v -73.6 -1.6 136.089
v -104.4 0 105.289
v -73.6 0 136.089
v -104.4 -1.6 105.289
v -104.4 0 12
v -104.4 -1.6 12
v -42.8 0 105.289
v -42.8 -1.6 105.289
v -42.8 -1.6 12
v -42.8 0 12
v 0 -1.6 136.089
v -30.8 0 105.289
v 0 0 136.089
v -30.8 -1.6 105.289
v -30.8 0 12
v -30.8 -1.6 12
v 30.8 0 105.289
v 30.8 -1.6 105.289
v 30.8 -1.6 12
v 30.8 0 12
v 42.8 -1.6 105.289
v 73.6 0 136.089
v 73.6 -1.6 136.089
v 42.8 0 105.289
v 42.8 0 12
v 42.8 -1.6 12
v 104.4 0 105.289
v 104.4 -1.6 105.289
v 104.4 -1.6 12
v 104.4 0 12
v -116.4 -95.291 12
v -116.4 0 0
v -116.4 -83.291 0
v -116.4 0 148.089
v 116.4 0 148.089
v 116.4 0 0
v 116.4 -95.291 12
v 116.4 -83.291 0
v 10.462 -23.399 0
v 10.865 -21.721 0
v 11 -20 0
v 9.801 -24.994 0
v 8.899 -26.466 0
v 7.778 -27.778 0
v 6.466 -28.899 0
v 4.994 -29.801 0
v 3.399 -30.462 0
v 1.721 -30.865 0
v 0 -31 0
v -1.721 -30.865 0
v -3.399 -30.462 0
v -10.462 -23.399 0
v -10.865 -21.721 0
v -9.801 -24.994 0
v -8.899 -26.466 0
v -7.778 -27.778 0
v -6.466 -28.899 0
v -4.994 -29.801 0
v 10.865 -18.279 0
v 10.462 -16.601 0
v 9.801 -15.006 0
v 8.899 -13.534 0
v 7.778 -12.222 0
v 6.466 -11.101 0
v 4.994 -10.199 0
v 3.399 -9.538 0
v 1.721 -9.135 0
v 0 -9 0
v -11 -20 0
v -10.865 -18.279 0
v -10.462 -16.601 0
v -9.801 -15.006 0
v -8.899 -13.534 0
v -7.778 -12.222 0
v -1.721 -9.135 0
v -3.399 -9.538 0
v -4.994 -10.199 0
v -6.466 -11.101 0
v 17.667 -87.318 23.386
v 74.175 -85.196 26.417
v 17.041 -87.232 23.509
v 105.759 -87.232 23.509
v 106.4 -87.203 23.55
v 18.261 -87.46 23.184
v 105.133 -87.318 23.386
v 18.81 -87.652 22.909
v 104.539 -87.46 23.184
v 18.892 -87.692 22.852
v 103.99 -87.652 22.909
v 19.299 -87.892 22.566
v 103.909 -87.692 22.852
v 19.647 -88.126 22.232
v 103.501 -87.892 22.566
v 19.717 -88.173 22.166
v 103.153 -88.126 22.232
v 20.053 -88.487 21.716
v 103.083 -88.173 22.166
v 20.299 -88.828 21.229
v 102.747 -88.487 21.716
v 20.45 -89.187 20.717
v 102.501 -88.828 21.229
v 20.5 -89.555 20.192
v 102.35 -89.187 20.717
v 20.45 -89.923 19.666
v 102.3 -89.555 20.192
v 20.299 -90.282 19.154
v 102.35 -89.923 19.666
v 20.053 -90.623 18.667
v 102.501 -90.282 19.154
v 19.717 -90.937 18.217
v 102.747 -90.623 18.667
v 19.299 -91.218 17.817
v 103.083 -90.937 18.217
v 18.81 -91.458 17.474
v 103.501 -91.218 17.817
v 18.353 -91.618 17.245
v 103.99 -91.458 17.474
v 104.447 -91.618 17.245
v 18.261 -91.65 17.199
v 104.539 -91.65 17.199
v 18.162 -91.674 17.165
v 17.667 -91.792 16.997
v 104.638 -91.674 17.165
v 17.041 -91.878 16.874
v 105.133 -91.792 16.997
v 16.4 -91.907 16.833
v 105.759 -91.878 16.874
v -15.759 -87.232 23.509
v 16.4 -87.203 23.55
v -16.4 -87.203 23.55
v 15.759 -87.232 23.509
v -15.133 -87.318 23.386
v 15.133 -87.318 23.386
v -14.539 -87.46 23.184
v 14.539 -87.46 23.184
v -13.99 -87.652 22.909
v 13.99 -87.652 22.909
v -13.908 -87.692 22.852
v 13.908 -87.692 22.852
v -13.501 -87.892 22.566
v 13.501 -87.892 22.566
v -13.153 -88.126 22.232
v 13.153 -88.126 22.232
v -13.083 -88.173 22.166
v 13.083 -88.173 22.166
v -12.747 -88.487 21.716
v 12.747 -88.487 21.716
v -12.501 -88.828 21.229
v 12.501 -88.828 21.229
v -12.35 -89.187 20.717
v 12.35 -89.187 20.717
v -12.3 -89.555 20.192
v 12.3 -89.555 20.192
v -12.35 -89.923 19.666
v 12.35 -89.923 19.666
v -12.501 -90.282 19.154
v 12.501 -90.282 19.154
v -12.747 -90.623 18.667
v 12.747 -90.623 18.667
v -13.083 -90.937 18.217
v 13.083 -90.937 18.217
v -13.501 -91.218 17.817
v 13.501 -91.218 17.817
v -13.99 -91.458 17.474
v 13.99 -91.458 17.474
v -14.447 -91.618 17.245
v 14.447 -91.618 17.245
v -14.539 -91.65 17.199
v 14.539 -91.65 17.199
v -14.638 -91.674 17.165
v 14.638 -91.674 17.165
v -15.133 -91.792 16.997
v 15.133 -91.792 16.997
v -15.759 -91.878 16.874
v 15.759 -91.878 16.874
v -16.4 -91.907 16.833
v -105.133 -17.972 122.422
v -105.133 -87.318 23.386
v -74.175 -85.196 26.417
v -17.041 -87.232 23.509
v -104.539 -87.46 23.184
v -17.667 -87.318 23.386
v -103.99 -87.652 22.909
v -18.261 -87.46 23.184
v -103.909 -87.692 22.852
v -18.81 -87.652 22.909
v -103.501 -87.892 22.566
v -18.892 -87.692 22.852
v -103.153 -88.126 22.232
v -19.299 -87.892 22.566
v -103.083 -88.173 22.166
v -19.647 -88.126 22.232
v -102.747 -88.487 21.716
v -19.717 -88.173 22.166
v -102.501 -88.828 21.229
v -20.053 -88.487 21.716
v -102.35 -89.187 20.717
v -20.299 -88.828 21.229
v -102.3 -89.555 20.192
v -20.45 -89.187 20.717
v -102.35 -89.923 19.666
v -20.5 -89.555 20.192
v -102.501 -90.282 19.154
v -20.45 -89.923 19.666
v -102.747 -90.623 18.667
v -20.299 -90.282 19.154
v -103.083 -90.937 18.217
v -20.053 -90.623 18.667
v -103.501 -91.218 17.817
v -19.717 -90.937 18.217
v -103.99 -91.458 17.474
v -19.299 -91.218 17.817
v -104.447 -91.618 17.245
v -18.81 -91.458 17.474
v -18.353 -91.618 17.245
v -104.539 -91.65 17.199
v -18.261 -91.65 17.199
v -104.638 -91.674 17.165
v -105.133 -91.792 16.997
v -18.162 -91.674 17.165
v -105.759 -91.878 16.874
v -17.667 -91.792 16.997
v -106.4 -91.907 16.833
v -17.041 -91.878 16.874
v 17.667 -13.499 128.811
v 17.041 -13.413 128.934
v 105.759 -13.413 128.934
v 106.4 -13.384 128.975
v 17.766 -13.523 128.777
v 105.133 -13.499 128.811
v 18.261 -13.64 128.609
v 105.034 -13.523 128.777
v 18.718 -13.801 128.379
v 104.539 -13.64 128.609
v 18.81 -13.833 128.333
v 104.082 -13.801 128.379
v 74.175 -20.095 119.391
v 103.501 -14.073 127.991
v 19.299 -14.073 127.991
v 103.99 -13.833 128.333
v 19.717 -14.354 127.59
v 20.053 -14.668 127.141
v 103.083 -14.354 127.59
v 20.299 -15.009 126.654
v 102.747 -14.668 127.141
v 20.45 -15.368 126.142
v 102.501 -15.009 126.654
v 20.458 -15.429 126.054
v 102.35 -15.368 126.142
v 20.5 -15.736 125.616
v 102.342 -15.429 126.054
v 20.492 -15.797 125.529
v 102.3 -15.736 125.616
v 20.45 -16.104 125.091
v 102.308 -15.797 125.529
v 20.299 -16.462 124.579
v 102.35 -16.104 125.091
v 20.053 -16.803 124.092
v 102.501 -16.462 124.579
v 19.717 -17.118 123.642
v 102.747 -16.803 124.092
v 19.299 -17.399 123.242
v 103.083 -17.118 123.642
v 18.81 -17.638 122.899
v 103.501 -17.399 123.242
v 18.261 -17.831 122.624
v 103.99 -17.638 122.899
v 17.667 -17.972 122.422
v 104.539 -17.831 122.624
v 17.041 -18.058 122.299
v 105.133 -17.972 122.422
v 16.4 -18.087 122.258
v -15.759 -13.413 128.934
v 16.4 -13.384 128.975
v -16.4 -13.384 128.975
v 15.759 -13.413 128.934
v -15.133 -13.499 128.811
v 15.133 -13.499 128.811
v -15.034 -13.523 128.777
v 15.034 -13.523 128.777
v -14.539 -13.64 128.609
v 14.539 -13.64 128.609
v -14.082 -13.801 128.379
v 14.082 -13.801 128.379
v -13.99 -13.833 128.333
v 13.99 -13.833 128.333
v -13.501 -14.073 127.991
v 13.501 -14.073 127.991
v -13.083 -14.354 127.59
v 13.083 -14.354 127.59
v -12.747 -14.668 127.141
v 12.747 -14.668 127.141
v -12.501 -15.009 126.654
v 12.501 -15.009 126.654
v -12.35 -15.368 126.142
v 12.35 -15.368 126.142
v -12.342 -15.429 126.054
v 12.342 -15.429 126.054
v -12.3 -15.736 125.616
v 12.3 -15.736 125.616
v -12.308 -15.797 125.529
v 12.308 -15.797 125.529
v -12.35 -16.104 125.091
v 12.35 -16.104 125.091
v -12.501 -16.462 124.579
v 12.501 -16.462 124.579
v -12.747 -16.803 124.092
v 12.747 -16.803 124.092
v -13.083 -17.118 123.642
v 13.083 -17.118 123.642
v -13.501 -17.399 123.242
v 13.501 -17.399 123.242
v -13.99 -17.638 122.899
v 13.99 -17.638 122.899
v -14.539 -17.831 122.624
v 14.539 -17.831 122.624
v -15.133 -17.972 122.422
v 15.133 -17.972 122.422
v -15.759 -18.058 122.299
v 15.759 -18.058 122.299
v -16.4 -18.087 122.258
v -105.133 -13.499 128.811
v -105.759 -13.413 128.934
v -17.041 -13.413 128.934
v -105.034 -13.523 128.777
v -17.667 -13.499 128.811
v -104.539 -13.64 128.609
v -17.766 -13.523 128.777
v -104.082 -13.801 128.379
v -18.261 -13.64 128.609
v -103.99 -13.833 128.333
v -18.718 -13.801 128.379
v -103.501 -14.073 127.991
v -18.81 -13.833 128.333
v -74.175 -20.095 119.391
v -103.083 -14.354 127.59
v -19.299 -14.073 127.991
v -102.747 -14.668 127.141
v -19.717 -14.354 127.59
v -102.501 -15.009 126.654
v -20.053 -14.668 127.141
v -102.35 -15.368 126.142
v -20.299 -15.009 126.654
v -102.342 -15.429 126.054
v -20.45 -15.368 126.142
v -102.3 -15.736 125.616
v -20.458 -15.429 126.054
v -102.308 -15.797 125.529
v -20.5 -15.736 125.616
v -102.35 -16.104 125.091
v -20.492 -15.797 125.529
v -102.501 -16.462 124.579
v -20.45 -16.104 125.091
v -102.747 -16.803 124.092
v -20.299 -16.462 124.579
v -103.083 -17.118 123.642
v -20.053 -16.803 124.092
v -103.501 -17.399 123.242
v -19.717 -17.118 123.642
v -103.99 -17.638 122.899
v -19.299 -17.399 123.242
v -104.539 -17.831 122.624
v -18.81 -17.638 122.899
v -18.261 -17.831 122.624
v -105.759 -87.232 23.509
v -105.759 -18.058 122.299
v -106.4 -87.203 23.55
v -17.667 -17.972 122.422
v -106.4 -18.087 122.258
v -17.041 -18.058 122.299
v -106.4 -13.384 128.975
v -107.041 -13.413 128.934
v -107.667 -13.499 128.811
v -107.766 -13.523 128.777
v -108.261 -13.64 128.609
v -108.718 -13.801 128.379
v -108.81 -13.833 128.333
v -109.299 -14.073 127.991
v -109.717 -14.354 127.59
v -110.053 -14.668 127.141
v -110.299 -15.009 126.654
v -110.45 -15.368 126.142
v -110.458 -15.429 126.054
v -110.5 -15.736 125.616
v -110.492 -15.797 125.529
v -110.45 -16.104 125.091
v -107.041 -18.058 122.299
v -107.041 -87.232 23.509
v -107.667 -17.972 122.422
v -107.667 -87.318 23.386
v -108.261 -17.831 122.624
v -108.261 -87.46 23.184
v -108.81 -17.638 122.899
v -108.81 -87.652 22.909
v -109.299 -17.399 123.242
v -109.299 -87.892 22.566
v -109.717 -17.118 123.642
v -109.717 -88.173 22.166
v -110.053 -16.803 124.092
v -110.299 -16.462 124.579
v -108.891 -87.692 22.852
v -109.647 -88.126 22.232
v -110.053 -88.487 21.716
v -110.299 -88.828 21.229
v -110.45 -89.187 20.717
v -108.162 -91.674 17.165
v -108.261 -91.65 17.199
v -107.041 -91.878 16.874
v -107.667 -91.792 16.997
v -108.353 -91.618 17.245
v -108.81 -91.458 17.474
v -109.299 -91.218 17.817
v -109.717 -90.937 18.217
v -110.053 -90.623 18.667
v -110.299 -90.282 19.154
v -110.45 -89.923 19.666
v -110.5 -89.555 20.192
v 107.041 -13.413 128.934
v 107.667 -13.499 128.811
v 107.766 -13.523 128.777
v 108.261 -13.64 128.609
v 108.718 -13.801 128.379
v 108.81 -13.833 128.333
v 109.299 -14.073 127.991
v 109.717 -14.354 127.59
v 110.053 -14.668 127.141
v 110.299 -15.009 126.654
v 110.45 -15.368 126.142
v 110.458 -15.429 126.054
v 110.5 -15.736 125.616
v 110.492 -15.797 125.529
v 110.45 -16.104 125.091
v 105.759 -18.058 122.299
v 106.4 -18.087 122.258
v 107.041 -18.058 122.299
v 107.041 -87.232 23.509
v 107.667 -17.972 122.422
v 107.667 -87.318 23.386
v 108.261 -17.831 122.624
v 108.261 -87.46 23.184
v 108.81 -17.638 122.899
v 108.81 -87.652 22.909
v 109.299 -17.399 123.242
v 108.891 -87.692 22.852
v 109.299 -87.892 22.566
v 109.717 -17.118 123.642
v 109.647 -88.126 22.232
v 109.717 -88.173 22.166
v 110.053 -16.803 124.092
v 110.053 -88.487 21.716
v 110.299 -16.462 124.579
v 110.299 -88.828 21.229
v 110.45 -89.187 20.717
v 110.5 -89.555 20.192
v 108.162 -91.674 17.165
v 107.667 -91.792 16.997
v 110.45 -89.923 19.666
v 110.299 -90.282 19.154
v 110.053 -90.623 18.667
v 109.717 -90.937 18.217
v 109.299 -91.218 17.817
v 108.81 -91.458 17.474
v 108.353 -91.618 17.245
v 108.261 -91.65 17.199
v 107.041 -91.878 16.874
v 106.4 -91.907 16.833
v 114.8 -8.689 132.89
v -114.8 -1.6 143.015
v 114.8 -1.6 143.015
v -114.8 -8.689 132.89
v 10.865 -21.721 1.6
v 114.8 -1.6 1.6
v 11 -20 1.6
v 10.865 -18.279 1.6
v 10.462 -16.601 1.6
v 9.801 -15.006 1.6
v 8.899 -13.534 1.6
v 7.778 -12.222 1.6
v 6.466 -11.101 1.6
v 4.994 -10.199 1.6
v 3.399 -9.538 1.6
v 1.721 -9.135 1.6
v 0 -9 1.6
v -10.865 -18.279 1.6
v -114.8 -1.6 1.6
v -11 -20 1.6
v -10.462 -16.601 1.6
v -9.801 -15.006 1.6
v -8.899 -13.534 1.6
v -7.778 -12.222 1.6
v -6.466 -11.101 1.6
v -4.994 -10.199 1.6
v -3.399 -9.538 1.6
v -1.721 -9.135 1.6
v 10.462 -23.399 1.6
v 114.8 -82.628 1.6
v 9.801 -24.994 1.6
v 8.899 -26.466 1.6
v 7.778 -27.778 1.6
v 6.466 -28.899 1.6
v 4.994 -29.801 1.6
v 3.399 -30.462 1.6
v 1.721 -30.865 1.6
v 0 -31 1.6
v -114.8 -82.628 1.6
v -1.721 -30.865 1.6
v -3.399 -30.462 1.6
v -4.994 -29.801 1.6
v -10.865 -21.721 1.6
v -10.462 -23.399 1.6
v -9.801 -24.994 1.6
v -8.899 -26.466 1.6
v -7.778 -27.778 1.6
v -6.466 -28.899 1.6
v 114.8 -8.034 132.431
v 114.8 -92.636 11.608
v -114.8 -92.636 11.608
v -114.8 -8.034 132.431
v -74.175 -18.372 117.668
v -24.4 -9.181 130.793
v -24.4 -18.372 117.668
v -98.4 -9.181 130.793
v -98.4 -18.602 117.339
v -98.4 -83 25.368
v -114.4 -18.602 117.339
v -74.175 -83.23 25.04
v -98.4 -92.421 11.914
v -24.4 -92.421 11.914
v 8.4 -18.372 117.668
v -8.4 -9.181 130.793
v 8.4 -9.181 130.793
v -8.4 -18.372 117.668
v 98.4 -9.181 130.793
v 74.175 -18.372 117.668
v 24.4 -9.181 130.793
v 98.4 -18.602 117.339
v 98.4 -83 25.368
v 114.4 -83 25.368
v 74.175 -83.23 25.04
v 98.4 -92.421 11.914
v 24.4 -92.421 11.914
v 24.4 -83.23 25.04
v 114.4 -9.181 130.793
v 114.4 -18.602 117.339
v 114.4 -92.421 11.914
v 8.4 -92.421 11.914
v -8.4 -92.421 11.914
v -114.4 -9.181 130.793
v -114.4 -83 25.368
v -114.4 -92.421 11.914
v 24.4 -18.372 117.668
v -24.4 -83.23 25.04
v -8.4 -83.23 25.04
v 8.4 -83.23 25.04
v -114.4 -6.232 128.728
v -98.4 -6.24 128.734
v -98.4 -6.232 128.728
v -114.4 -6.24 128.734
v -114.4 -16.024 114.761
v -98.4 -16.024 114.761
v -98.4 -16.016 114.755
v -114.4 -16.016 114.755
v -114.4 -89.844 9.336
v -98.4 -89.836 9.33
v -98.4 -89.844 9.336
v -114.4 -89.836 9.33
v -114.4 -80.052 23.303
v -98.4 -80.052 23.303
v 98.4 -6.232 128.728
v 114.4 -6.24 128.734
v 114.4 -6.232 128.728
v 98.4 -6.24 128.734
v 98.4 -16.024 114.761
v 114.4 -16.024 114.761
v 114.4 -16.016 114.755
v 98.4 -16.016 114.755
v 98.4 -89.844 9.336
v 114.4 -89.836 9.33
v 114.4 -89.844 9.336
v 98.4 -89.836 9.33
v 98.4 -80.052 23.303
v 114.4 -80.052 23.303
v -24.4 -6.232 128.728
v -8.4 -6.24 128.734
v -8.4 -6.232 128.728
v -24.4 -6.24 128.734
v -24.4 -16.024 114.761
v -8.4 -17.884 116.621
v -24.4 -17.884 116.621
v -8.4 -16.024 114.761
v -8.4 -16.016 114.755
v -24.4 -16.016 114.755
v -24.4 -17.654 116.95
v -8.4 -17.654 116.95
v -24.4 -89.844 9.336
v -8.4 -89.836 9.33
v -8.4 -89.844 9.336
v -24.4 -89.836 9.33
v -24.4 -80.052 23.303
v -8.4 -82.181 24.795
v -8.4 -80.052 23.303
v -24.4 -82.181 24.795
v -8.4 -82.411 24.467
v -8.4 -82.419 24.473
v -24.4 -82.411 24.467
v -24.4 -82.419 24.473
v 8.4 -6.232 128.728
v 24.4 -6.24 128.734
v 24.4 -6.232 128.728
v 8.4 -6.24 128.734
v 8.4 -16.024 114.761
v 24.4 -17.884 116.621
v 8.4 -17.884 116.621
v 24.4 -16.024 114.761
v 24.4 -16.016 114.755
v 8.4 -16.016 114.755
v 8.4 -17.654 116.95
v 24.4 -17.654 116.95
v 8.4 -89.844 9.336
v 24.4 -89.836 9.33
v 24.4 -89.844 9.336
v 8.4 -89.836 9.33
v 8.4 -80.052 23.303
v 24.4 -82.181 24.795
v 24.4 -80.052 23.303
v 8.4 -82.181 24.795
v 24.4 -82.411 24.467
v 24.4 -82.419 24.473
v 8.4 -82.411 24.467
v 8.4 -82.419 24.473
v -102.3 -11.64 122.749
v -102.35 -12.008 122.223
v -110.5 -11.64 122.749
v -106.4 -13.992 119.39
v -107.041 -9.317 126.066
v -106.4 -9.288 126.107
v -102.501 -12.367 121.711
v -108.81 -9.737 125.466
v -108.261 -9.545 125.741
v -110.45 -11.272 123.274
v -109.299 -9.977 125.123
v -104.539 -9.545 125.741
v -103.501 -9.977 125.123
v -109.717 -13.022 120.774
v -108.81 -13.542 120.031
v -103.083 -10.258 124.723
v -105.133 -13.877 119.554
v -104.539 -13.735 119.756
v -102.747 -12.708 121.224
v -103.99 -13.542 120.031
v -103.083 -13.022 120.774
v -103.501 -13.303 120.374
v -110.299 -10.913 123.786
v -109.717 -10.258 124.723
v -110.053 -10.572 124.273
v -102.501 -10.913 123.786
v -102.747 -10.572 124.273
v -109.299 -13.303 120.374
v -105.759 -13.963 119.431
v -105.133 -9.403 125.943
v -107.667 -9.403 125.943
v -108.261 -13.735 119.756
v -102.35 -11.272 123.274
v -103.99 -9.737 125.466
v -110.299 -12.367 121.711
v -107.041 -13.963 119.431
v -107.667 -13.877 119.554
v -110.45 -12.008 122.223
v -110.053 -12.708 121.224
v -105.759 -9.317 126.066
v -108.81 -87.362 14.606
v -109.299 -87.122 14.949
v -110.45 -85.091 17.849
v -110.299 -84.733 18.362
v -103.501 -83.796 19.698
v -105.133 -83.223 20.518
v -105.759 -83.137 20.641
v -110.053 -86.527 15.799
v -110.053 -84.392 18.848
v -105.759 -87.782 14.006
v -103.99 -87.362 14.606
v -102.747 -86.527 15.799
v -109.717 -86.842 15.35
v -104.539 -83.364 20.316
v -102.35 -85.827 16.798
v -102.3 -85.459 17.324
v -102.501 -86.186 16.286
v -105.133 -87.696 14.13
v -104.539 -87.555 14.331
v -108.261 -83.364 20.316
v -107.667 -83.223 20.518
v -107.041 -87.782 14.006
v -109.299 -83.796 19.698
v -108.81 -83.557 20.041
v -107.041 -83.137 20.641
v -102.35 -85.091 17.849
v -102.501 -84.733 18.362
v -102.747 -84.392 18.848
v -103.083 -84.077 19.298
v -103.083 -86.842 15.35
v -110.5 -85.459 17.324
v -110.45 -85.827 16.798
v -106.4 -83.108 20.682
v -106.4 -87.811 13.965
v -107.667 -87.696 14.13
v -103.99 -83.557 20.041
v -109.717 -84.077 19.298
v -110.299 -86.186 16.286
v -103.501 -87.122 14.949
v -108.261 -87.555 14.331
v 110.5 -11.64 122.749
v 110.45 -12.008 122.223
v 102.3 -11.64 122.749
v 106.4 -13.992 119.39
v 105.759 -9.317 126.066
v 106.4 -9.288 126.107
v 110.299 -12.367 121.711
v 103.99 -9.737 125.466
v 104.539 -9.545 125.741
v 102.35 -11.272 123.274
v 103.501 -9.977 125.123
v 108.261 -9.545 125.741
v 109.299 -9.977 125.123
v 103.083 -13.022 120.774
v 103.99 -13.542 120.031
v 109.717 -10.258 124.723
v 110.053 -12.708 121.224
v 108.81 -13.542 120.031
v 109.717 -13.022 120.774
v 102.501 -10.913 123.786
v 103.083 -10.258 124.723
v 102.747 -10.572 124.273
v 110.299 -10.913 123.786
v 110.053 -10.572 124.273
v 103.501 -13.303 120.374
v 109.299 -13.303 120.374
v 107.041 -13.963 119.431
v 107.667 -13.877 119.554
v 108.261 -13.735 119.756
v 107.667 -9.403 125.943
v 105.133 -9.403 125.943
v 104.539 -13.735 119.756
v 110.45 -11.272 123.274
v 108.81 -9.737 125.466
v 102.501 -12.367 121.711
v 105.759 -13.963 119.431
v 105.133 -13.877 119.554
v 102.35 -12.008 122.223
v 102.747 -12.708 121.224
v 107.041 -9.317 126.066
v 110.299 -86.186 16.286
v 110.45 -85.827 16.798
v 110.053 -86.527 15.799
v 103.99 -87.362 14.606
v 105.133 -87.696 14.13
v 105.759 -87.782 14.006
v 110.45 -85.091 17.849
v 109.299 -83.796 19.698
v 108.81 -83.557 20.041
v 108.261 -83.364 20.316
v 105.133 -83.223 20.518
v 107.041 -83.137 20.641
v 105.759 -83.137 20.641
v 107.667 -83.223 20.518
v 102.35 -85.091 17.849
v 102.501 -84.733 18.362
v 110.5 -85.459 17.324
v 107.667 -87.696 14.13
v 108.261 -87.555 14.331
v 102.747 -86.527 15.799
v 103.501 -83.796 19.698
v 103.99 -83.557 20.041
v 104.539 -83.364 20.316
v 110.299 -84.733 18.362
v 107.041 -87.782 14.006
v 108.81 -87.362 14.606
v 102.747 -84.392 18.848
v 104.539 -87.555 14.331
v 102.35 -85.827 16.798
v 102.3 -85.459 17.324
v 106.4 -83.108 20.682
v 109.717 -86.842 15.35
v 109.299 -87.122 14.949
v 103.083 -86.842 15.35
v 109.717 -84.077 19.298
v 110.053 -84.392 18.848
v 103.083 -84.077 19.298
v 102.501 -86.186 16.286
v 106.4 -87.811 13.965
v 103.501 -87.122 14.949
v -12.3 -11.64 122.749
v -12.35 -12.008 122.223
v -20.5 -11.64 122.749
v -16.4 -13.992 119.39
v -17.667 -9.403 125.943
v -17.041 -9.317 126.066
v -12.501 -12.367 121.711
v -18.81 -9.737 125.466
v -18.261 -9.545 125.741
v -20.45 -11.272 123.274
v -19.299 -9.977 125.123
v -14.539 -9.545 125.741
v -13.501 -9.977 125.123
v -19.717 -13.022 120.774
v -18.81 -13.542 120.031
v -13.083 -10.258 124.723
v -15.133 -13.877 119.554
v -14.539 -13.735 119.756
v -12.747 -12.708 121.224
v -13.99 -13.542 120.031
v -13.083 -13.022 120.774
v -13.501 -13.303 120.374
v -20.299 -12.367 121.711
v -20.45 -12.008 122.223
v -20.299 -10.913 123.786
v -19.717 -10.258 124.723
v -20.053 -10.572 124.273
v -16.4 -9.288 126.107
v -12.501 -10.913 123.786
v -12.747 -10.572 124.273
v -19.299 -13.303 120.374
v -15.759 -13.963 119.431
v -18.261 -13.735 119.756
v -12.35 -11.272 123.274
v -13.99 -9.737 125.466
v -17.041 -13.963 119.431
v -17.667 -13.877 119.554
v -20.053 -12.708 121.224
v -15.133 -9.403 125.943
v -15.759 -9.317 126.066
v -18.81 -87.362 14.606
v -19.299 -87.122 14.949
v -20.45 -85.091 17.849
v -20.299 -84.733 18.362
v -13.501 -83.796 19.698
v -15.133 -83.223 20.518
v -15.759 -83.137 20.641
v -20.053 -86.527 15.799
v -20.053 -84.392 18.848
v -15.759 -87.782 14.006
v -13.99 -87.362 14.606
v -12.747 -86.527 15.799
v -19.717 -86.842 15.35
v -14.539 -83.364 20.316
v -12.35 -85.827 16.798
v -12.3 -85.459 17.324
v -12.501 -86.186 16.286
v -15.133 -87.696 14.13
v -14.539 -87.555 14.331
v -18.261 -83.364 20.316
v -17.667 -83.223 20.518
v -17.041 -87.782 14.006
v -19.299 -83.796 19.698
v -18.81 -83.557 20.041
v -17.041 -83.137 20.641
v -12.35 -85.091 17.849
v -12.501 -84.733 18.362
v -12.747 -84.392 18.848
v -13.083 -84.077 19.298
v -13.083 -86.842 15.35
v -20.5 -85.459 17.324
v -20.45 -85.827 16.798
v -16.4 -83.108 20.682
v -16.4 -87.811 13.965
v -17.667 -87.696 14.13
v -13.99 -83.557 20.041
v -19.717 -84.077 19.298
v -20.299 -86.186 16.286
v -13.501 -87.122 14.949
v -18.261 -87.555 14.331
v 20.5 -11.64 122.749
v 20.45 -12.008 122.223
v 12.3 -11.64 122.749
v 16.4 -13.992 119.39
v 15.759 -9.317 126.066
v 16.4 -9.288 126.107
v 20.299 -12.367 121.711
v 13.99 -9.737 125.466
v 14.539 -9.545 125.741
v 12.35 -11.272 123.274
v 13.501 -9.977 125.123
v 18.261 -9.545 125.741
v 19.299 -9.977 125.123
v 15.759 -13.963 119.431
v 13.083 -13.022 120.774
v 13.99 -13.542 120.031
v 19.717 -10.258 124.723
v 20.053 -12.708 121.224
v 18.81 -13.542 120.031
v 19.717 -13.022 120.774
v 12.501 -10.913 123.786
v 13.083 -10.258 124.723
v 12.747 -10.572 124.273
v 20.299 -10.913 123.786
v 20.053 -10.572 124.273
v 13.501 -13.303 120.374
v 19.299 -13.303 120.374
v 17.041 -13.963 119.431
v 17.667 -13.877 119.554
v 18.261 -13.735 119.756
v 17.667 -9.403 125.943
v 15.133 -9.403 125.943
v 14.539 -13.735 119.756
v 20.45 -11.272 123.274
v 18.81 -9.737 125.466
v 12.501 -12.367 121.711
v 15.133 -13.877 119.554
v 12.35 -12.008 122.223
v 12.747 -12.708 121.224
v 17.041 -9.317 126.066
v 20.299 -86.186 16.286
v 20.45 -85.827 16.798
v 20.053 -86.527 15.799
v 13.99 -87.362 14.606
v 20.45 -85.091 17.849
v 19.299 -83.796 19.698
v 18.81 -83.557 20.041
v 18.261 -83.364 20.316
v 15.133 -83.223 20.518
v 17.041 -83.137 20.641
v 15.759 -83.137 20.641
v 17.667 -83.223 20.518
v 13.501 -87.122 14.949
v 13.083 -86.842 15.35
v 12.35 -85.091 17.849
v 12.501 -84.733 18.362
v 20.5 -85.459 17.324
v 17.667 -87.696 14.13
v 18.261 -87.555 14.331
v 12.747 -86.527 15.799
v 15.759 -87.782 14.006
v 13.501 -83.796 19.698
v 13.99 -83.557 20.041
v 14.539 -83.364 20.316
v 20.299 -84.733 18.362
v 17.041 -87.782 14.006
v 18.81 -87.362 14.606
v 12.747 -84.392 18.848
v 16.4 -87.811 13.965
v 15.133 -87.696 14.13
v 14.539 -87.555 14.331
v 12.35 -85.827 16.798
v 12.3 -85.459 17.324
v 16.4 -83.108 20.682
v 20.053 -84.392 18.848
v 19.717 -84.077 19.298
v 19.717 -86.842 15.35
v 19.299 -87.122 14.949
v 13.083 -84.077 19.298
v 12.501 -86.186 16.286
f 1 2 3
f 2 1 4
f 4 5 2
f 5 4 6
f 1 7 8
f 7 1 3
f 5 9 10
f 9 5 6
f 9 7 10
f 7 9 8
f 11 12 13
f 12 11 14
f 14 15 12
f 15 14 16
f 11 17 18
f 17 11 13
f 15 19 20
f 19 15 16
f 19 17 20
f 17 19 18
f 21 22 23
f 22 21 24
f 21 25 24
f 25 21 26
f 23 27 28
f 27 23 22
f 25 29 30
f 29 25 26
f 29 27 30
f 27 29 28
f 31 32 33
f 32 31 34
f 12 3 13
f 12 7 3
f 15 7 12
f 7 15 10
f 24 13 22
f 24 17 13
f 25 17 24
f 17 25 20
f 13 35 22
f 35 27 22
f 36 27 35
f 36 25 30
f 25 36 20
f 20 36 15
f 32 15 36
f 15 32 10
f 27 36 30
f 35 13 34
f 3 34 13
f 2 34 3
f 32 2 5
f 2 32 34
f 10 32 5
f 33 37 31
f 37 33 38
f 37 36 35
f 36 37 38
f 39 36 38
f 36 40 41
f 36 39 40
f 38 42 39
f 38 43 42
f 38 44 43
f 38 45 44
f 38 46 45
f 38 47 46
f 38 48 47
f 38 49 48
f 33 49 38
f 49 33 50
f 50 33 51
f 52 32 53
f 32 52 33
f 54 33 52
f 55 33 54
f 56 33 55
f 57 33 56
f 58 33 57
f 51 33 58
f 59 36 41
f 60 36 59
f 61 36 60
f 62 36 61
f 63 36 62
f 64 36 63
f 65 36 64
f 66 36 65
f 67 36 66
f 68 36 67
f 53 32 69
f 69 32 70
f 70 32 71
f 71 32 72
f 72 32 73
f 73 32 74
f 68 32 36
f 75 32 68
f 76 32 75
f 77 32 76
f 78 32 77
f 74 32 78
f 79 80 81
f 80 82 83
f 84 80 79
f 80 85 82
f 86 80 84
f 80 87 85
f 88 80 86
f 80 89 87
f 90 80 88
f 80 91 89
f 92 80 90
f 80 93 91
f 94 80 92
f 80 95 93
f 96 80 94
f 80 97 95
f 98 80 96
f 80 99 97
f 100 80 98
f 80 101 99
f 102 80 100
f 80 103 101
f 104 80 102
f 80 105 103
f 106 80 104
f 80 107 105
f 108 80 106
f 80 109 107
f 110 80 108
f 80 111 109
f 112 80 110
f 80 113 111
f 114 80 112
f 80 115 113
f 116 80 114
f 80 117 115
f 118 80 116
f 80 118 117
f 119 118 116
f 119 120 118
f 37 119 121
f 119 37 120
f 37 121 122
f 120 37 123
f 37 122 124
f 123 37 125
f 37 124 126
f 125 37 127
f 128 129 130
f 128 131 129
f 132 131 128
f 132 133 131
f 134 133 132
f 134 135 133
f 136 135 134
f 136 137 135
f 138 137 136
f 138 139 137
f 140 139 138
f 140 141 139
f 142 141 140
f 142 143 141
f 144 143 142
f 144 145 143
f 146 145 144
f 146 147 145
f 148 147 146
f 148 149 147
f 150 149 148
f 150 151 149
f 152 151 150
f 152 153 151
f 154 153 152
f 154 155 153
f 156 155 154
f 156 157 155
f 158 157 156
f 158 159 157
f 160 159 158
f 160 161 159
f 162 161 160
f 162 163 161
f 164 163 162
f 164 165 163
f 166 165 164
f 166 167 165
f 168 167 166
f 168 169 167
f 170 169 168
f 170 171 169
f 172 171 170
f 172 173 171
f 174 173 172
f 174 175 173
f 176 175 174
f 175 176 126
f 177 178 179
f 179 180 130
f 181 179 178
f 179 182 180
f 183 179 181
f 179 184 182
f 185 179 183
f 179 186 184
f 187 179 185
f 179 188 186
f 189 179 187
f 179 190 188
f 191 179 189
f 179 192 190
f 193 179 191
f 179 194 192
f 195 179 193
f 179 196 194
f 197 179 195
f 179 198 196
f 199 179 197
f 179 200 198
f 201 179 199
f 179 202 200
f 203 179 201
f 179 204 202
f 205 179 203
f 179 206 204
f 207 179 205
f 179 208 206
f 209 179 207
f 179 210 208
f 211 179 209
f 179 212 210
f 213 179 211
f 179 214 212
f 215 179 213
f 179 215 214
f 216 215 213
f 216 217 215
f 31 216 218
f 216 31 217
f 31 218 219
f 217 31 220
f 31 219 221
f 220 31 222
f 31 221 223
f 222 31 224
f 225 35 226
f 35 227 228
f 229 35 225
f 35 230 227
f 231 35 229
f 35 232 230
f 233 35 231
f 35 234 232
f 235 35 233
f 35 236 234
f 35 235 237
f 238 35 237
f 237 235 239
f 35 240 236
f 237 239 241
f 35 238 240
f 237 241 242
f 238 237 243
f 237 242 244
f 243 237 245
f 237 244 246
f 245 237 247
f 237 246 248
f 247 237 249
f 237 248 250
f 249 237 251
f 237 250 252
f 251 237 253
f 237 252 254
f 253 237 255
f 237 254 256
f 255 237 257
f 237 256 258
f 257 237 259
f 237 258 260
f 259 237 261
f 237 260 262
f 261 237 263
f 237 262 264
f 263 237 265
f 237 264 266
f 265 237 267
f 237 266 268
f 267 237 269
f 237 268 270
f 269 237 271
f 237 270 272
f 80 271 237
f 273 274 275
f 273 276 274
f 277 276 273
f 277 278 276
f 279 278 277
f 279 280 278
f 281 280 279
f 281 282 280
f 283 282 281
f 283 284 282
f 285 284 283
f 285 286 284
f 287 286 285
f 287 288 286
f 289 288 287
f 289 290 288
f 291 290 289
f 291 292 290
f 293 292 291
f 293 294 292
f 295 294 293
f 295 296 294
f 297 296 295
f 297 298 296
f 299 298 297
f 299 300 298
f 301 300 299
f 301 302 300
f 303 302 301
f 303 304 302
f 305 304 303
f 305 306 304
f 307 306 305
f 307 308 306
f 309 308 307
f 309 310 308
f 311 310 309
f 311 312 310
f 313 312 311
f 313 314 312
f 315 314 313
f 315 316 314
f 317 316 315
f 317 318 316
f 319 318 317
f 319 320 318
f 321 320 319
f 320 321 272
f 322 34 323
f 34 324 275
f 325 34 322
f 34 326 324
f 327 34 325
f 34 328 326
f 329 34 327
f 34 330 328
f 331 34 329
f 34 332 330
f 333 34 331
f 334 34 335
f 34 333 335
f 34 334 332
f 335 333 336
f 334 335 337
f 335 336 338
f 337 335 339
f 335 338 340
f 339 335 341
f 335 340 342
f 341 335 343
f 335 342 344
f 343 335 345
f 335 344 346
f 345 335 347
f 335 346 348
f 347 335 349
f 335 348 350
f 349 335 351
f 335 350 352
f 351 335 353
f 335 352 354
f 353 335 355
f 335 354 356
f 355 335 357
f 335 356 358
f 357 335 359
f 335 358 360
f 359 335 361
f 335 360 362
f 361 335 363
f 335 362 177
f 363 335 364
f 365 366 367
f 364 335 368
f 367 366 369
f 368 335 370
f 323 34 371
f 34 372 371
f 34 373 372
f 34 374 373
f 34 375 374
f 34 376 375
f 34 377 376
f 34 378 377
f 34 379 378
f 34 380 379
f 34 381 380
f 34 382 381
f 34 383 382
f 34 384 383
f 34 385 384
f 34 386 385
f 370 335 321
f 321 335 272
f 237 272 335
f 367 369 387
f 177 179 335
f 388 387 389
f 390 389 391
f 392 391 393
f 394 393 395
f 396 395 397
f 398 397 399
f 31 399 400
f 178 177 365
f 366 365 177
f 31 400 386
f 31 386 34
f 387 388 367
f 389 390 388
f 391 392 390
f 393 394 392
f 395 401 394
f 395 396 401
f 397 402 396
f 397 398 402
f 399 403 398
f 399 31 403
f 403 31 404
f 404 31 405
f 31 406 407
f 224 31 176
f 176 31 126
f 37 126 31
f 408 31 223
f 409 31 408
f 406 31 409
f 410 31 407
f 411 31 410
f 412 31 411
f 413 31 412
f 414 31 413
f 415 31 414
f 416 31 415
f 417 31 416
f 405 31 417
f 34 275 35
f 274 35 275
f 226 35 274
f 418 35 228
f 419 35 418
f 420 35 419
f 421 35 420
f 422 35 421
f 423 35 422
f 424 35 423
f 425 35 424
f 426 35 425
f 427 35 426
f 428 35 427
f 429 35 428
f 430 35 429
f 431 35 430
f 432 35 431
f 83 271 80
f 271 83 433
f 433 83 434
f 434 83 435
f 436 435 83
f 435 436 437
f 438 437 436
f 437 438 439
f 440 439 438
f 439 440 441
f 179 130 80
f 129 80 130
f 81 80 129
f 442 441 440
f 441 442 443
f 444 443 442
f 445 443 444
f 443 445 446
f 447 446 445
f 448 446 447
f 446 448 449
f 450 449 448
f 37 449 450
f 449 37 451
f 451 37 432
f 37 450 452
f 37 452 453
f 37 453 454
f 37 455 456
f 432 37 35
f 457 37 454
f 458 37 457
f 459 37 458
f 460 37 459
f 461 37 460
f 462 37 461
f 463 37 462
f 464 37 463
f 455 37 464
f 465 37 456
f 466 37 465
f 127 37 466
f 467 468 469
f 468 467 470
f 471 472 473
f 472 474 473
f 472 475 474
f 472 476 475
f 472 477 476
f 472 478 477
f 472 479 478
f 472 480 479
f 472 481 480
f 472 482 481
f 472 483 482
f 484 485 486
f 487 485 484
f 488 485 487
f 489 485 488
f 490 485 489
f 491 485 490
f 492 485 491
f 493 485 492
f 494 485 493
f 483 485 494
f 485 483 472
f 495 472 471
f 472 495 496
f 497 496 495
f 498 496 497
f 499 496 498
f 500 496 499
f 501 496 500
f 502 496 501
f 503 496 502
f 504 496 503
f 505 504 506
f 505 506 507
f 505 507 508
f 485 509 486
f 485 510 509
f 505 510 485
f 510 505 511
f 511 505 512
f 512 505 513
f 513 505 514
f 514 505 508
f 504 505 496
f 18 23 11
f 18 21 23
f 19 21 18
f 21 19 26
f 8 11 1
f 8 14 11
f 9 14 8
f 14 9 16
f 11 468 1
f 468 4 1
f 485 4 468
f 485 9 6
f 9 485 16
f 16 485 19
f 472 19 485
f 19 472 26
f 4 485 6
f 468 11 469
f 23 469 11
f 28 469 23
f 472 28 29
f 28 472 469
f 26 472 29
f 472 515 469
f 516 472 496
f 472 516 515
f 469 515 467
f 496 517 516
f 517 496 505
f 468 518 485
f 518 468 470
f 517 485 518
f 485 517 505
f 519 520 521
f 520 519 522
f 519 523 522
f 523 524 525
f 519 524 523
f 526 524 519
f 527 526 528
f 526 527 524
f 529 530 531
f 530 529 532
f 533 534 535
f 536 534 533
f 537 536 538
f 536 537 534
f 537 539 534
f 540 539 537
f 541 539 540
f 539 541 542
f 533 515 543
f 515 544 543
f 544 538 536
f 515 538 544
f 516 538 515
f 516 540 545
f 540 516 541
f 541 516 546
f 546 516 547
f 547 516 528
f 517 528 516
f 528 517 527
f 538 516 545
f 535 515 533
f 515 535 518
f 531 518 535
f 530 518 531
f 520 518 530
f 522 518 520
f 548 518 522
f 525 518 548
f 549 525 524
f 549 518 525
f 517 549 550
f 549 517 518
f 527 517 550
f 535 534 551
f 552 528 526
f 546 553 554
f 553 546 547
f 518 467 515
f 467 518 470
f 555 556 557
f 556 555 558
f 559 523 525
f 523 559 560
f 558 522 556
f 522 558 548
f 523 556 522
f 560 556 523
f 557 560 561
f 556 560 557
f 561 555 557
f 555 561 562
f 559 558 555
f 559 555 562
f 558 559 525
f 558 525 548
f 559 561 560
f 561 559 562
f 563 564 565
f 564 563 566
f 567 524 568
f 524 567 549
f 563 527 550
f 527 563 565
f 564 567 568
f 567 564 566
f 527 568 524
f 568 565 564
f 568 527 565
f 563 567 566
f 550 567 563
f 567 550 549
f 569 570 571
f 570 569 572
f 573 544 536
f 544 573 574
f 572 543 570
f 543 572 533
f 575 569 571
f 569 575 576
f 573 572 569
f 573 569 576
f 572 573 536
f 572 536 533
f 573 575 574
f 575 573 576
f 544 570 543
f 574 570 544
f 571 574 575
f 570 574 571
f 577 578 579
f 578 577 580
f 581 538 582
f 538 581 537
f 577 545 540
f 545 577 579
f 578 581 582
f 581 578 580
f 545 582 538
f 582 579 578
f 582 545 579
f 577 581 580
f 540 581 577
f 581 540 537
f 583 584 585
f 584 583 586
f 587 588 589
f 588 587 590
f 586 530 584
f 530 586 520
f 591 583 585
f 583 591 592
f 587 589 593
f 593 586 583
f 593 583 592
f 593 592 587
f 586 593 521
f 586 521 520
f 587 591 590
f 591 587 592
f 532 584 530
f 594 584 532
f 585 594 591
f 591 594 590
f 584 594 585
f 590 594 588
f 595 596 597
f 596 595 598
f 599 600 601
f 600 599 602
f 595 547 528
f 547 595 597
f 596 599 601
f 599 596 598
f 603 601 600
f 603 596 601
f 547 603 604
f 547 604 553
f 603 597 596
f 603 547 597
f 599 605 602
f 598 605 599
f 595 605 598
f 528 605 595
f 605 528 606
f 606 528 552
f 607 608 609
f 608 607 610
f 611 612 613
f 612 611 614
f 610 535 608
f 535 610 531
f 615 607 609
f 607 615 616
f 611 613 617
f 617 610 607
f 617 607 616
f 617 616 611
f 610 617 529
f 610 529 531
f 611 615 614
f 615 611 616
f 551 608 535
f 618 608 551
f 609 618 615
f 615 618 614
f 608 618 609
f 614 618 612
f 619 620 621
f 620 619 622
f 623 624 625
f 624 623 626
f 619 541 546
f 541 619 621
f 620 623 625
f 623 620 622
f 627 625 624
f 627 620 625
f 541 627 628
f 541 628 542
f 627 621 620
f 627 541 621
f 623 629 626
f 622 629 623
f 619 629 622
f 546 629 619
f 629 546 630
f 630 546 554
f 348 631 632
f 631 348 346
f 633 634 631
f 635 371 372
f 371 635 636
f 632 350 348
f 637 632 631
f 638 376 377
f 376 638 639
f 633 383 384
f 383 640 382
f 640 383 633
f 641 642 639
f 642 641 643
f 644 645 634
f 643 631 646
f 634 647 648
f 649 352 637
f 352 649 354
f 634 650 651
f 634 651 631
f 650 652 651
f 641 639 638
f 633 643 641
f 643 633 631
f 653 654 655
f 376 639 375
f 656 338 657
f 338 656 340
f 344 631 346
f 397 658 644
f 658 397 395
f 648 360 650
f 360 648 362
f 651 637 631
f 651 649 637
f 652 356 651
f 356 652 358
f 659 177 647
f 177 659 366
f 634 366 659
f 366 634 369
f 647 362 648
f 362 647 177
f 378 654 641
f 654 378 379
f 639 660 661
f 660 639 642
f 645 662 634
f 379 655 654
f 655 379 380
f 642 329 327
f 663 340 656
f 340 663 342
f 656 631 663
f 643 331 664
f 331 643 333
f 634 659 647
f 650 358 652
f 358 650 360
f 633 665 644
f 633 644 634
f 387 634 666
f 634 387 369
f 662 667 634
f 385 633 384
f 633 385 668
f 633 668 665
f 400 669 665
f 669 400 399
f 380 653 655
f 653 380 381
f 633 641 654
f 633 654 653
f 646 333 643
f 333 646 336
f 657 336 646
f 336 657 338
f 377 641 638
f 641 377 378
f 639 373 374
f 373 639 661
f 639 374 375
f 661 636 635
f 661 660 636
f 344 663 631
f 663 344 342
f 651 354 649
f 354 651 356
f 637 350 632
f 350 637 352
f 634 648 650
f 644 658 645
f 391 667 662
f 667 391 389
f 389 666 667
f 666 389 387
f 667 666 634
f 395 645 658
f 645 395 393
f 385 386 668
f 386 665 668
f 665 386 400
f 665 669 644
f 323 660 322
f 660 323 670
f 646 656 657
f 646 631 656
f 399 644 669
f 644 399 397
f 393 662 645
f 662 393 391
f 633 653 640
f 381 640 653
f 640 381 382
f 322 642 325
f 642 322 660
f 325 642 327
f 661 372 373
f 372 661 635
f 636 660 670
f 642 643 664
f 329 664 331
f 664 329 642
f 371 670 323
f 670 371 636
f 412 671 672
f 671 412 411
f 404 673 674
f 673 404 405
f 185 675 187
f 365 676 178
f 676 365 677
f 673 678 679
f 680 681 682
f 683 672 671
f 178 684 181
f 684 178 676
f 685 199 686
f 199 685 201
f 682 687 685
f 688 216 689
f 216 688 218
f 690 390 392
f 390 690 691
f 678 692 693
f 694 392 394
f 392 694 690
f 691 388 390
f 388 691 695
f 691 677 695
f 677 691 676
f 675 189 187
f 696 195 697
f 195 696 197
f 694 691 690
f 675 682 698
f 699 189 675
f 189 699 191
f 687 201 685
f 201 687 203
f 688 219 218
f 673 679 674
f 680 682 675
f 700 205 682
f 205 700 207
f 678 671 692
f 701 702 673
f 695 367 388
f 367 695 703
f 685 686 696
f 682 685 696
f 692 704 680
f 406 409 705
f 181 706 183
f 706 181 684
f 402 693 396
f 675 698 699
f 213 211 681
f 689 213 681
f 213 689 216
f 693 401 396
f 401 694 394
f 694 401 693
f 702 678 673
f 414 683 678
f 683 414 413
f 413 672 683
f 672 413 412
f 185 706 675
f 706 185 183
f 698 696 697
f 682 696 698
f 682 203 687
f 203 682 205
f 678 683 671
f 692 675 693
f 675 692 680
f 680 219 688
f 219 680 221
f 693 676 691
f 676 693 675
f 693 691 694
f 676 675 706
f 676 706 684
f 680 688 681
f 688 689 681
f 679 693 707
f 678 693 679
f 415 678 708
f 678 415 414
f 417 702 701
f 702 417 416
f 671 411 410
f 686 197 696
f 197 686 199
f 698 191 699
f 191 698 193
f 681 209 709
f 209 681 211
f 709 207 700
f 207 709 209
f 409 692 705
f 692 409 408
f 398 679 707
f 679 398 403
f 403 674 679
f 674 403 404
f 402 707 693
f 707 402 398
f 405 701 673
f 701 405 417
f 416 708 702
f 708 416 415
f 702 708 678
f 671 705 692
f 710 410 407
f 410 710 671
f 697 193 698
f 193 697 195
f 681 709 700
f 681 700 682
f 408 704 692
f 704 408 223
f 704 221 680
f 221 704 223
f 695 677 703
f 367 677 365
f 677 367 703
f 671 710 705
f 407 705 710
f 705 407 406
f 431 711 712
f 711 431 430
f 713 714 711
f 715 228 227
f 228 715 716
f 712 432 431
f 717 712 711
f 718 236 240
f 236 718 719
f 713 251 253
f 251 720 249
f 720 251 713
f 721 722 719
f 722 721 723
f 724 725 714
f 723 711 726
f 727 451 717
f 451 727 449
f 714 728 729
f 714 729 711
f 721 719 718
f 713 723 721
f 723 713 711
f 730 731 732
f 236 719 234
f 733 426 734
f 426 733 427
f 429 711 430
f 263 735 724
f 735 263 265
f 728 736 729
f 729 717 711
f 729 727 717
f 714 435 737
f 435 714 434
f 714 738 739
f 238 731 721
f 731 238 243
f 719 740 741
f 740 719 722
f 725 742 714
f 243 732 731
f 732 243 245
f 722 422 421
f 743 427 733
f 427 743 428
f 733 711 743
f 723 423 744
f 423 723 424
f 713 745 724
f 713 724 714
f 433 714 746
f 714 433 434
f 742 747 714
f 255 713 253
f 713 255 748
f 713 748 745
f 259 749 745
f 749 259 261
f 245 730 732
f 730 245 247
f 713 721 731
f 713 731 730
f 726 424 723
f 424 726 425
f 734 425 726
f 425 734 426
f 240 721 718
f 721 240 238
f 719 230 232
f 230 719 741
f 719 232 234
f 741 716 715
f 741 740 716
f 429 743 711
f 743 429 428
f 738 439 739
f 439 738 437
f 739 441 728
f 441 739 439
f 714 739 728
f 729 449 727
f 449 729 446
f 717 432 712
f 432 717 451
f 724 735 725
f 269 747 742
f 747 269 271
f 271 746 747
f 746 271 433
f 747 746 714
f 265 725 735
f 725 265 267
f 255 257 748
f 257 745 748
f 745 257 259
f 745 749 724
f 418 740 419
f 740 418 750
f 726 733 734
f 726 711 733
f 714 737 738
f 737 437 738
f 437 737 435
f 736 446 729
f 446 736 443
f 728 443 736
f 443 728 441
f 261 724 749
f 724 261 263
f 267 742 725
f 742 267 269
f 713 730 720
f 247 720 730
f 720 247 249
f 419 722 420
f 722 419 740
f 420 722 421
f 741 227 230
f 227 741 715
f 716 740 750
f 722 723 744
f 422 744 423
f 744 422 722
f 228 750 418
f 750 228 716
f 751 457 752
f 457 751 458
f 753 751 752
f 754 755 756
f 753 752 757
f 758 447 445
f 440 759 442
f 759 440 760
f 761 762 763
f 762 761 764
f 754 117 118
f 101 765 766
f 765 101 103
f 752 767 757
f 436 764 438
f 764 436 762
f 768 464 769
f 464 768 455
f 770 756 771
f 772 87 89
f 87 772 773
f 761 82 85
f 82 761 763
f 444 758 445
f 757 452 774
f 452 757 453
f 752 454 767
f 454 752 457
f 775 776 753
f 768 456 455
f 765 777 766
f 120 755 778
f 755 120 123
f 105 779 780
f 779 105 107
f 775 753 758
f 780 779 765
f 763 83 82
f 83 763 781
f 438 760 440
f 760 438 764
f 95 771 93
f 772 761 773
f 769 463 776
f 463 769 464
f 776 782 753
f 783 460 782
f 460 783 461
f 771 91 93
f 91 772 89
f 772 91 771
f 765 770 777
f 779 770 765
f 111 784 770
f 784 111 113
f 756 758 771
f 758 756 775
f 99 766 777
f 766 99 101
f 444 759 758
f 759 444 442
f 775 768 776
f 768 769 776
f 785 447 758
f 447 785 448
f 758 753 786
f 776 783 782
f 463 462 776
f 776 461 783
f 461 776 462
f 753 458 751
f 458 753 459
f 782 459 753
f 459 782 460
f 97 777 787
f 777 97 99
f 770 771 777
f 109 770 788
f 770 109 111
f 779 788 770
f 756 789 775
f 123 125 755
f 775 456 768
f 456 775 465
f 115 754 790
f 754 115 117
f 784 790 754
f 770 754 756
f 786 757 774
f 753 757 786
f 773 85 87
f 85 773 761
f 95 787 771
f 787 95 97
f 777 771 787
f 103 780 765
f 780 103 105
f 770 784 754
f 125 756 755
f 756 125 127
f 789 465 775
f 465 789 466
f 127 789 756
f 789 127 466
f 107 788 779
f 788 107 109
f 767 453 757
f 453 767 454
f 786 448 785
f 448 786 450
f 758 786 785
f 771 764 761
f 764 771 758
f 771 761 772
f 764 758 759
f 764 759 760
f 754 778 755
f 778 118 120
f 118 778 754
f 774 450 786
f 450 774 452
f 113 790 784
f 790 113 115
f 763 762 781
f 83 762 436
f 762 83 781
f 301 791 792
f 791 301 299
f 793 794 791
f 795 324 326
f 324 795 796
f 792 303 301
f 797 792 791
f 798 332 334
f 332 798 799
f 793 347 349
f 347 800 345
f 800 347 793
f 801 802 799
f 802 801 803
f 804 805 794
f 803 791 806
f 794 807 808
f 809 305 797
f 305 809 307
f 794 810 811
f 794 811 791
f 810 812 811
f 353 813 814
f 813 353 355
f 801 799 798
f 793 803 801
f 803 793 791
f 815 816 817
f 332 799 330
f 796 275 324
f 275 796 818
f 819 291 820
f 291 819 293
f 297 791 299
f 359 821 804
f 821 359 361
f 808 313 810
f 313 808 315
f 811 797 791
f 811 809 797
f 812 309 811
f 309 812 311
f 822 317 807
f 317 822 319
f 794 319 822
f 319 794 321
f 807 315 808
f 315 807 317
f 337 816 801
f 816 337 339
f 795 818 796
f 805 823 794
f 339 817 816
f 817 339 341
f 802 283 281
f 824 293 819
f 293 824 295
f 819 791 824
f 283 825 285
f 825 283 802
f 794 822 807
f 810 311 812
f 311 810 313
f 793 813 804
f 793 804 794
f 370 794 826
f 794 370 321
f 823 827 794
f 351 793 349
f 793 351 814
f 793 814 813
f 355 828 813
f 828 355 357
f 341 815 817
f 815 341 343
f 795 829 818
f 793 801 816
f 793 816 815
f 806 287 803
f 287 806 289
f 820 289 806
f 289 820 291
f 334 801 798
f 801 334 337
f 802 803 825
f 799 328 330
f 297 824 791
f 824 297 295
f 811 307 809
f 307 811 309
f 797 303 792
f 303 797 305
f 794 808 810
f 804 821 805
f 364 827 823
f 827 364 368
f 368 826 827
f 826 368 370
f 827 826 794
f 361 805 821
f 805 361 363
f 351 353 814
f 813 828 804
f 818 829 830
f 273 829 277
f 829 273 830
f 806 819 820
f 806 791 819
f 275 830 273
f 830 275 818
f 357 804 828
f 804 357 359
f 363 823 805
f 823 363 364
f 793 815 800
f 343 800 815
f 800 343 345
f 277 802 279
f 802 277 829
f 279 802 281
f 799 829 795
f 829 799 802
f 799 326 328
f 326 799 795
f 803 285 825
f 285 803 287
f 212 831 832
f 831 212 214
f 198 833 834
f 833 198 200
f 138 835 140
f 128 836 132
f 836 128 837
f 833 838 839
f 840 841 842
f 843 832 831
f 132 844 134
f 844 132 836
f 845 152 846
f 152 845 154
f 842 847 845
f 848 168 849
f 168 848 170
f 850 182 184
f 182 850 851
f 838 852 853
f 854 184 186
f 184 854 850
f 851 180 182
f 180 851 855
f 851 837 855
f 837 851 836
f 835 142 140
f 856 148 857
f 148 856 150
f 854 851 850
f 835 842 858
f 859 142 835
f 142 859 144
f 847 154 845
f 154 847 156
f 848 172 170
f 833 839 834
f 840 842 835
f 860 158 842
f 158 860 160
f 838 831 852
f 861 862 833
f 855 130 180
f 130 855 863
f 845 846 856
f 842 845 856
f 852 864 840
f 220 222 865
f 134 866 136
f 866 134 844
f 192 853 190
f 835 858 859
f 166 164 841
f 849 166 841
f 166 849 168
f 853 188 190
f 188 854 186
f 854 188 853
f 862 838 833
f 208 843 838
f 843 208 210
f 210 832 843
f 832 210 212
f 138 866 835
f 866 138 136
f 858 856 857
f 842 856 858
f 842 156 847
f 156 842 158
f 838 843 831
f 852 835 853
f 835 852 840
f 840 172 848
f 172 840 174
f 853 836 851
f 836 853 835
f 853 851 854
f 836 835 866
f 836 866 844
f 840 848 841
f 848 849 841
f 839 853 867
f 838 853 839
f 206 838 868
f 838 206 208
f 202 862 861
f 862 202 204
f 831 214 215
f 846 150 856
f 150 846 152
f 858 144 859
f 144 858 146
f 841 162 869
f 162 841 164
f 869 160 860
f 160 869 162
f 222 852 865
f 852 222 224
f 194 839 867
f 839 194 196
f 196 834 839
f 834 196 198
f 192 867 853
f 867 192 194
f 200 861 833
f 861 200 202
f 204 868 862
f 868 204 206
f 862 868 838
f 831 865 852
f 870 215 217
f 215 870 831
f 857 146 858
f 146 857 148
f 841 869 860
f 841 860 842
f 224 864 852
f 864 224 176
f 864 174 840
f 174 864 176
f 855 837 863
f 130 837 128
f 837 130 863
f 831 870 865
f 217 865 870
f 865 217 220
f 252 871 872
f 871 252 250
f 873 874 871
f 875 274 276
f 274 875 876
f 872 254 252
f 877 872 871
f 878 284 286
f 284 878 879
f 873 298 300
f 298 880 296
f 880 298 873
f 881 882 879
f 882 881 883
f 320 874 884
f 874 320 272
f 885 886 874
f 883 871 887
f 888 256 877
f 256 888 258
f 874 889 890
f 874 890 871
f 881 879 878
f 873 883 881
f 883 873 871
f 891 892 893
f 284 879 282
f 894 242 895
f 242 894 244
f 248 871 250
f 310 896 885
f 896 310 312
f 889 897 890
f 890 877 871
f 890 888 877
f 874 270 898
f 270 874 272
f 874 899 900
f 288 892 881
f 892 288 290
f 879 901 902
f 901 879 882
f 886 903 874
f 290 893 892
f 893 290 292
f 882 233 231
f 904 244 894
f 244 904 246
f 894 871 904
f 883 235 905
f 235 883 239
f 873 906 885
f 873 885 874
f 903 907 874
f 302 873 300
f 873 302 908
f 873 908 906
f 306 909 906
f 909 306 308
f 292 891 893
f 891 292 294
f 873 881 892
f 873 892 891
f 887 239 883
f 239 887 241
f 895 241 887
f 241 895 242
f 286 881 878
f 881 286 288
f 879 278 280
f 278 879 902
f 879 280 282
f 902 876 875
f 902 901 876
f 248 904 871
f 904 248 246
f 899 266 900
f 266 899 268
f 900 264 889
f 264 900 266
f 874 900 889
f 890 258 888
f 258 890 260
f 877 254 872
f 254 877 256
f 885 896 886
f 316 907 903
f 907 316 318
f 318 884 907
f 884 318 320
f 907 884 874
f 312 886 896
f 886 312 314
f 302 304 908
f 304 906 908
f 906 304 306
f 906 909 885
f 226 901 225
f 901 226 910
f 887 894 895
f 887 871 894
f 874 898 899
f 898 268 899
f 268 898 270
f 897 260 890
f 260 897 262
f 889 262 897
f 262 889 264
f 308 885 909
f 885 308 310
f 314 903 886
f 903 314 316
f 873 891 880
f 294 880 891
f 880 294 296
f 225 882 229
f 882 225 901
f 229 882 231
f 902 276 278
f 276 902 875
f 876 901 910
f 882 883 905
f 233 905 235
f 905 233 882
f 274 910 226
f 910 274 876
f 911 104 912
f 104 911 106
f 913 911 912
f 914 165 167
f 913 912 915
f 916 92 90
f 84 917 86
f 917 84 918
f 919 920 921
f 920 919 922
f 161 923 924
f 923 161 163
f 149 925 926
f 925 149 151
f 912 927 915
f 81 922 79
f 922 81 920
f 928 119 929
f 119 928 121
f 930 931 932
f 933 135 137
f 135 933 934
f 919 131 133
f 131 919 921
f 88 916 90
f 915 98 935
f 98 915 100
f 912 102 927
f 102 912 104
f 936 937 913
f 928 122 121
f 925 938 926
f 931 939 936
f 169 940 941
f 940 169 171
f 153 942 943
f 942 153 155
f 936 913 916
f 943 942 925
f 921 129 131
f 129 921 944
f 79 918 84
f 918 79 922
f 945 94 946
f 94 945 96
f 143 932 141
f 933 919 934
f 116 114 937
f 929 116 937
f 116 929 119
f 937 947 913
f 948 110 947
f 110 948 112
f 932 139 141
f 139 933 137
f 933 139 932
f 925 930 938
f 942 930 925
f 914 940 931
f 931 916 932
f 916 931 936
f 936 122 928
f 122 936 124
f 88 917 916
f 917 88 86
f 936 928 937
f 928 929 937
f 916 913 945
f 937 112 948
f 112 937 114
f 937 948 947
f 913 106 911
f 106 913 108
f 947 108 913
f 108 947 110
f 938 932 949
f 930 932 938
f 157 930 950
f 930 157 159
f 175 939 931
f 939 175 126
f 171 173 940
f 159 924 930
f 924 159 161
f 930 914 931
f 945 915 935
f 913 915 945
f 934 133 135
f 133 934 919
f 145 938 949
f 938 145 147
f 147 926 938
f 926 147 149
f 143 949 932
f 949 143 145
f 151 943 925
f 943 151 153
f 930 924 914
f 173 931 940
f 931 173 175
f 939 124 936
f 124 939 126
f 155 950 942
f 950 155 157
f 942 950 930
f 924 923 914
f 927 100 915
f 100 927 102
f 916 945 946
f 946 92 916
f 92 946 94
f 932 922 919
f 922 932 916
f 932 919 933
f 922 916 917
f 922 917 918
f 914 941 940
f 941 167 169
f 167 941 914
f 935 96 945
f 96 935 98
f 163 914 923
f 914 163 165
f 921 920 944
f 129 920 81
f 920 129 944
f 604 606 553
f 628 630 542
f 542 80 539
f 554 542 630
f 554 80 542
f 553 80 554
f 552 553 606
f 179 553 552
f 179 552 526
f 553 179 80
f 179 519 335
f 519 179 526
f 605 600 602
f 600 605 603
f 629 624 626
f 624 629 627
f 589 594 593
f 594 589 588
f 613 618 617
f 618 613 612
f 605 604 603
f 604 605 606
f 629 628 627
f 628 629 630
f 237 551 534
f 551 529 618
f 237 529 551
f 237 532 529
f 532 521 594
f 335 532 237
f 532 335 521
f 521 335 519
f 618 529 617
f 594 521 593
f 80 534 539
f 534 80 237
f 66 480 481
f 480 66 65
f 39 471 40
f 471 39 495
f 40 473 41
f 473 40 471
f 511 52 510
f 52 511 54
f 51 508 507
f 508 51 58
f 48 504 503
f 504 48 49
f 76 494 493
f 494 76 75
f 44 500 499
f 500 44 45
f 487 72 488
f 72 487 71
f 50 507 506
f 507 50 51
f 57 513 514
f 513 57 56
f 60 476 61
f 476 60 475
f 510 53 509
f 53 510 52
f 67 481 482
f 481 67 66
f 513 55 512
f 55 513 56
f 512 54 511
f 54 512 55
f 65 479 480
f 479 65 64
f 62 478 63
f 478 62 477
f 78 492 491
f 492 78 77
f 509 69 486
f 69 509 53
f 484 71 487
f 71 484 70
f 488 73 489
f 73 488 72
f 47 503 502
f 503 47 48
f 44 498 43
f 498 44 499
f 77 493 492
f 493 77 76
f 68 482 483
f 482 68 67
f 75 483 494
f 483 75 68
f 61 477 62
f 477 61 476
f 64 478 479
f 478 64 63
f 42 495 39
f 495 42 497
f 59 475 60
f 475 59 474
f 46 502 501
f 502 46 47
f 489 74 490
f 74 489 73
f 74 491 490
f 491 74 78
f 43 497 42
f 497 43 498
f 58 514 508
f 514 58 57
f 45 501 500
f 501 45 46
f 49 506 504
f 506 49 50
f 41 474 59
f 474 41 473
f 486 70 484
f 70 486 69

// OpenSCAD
// file: suporte_tela10_fino.scad
// =====================================================================
//  Suporte FECHADO FINO (impressão rápida) para a tela Guition
//  JC8012P4A1C 10,1". Mesmo encaixe do suporte_tela10.scad, mas:
//    - paredes de 1,6 mm (4 linhas de bico 0,4);
//    - sem logo;
//    - sem a borda grossa: só uma pastilha em volta de cada encaixe;
//    - fundo vazado (só uma moldura apoiando na mesa).
//  A tela apoia na face e as colunas de latão entram nos encaixes:
//  fica presa pelo peso, sem parafuso.
//  Eixos: X = largura, Y = profundidade (+Y para a frente), Z para cima.
// =====================================================================

/* [Tela (desenho Guition)] */
tela_l      = 242.8;
tela_a      = 158.7;
furo_borda  = 15;
furo_meio   = 16.4;
caixa_l     = 138.35;
caixa_a     = 93.5;

/* [Suporte] */
angulo      = 50;       // inclinação da tela em relação à mesa (mínimo 45 para imprimir sem suporte)
recuo_face  = 5;
parede      = 0.9;      // laterais, traseira e fundo (2 linhas de bico 0,4)
esp_face    = 1.8;      // face onde a tela apoia (mais grossa)
altura_frente = 10;
fundo_atras = 12;
moldura_fundo = 12;     // largura da moldura do fundo (o meio é vazado)
encaixe_d   = 8.2;
encaixe_prof = 5;
pastilha    = 16;       // pastilha em volta de cada encaixe
margem_l    = 5;
margem_a    = 10;
encaixes_dos_dois_lados = true;
furo_tras_d = 22;
furo_tras_z = 20;
imprimir_de_costas = false;   // true: peça girada com a traseira na mesa (para ângulos baixos)
janelas_fundo = 0;            // >0: fundo com N janelas de topo em Λ (em vez de um vão só)

$fn = 40;
e = 0.01;

W  = tela_l - 2*recuo_face;
L  = tela_a - 2*recuo_face;
ca = cos(angulo); sa = sin(angulo);
v2s = function(v) v + L/2;
z_topo = altura_frente + L*sa;
y_topo = -L*ca;
y_tras = y_topo - fundo_atras;
z_tras = z_topo - fundo_atras;
bico_frente = altura_frente * ca / sa;
abre_u = caixa_l/2 + margem_l;
abre_v = caixa_a/2 + margem_a;
k45 = max(0, tan(angulo - 45));      // recuo por mm de profundidade p/ ficar a 45° (impressão em pé)
k45c = imprimir_de_costas ? max(0, tan(45 - angulo)) : 0;   // idem, impressão de costas

fu = tela_l/2 - furo_borda;
fv = tela_a/2 - furo_borda;
encaixes = concat(
    [for (su = [-1, 1], sv = [-1, 1]) [su*fu, sv*fv]],
    [for (sv = [-1, 1]) [-furo_meio, sv*fv]],
    encaixes_dos_dois_lados ? [for (sv = [-1, 1]) [furo_meio, sv*fv]] : []
);

echo(str("Suporte fino: ", W, " x ", round(bico_frente - y_tras), " x ", round(z_topo), " mm"));

module na_face() {
    multmatrix([[1, 0,   0,  0],
                [0, -ca, sa, 0],
                [0, sa,  ca, altura_frente],
                [0, 0,   0,  1]]) children();
}

module perfil() {
    polygon([[bico_frente, 0], [0, altura_frente], [y_topo, z_topo],
             [y_tras, z_tras], [y_tras, 0]]);
}

module casca() {
    difference() {
        translate([-W/2, 0, 0]) rotate([90, 0, 90]) linear_extrude(W) perfil();
        translate([-W/2 + parede, 0, 0]) rotate([90, 0, 90]) linear_extrude(W - 2*parede)
            offset(delta = -parede) perfil();
        // fundo vazado: fica só a moldura (ou N janelas com topo em Λ a 45°)
        if (janelas_fundo == 0)
            translate([-W/2 + moldura_fundo, y_tras + moldura_fundo, -1])
                cube([W - 2*moldura_fundo, bico_frente - y_tras - 2*moldura_fundo, parede + 2]);
        else {
            jl = (W - (janelas_fundo + 1) * moldura_fundo) / janelas_fundo;
            y0 = y_tras + moldura_fundo;  y1 = bico_frente - moldura_fundo;
            for (i = [0 : janelas_fundo - 1])
                translate([-W/2 + moldura_fundo + i * (jl + moldura_fundo), 0, -1])
                    linear_extrude(parede + 2) polygon([[0, y0], [jl, y0], [jl, y1 - jl/2], [jl/2, y1], [0, y1 - jl/2]]);
        }
    }
}

// pastilha atrás da face, com a borda de baixo a 45° (imprime sem suporte)
module pastilha_em(u, v) {
    s0 = v2s(v) - pastilha/2;  s1 = v2s(v) + pastilha/2;
    p = encaixe_prof + 1;
    intersection() {
        hull() {
            na_face() translate([u - pastilha/2, s0, -e]) cube([pastilha, s1 - s0, e]);
            na_face() translate([u - pastilha/2, s0 - p*k45, -p]) cube([pastilha, s1 - s0 + p*k45 + p*k45c, e]);
        }
        translate([-W/2, 0, 0]) rotate([90, 0, 90]) linear_extrude(W) perfil();
    }
}

module suporte() {
    difference() {
        union() {
            casca();
            // face mais grossa que as outras paredes
            intersection() {
                translate([-W/2, 0, 0]) rotate([90, 0, 90]) linear_extrude(W) perfil();
                na_face() translate([-W/2, 0, -esp_face]) cube([W, L, esp_face]);
            }
            for (f = encaixes) pastilha_em(f[0], f[1]);
        }
        // abertura da caixa: borda de cima a 45°
        hull() {
            na_face() translate([-abre_u, v2s(-abre_v), 0]) cube([2*abre_u, 2*abre_v, 1]);
            na_face() translate([-abre_u, v2s(-abre_v) + (esp_face + 1) * k45c, -esp_face - 1])
                cube([2*abre_u, 2*abre_v - (esp_face + 1) * (k45 + k45c), e]);
        }
        // encaixes das colunas de latão
        for (f = encaixes) na_face() translate([f[0], v2s(f[1]), -encaixe_prof]) cylinder(d = encaixe_d, h = encaixe_prof + 1);
        // furo do cabo atrás
        translate([0, y_tras + parede/2, furo_tras_z]) rotate([90, 0, 0]) cylinder(d = furo_tras_d, h = parede + 2, center = true);
    }
}

if (imprimir_de_costas)
    rotate([90, 0, 0]) translate([0, -y_tras, 0]) mirror([0, 0, 1]) mirror([0, 0, 1]) suporte();
else
    suporte();
// main file
// =====================================================================
//  Suporte fechado da tela Guition 10,1" — versão MAIS DEITADA e MAIS GROSSA.
//  É o suporte_tela10_fino.scad com outros valores:
//    - tela a 35° da mesa (55° para trás da vertical);
//    - paredes de 1,6 mm e face de 2,4 mm (fina era 0,9 / 1,8);
//    - o STL sai GIRADO (imprimir_de_costas = true), com a traseira na mesa da impressora: assim a face
//      fica a 35° da vertical e imprime SEM SUPORTE;
//    - fundo com 3 janelas de topo em Λ (na posição de impressão o fundo fica
//      em pé e o topo das janelas fica a 45°).
// =====================================================================
include <suporte_tela10_fino.scad>

angulo      = 35;
parede      = 1.6;
esp_face    = 2.4;
fundo_atras = 12;
imprimir_de_costas = true;
janelas_fundo = 3;
// Para imprimir EM PÉ (com suporte no fatiador): imprimir_de_costas = false.
